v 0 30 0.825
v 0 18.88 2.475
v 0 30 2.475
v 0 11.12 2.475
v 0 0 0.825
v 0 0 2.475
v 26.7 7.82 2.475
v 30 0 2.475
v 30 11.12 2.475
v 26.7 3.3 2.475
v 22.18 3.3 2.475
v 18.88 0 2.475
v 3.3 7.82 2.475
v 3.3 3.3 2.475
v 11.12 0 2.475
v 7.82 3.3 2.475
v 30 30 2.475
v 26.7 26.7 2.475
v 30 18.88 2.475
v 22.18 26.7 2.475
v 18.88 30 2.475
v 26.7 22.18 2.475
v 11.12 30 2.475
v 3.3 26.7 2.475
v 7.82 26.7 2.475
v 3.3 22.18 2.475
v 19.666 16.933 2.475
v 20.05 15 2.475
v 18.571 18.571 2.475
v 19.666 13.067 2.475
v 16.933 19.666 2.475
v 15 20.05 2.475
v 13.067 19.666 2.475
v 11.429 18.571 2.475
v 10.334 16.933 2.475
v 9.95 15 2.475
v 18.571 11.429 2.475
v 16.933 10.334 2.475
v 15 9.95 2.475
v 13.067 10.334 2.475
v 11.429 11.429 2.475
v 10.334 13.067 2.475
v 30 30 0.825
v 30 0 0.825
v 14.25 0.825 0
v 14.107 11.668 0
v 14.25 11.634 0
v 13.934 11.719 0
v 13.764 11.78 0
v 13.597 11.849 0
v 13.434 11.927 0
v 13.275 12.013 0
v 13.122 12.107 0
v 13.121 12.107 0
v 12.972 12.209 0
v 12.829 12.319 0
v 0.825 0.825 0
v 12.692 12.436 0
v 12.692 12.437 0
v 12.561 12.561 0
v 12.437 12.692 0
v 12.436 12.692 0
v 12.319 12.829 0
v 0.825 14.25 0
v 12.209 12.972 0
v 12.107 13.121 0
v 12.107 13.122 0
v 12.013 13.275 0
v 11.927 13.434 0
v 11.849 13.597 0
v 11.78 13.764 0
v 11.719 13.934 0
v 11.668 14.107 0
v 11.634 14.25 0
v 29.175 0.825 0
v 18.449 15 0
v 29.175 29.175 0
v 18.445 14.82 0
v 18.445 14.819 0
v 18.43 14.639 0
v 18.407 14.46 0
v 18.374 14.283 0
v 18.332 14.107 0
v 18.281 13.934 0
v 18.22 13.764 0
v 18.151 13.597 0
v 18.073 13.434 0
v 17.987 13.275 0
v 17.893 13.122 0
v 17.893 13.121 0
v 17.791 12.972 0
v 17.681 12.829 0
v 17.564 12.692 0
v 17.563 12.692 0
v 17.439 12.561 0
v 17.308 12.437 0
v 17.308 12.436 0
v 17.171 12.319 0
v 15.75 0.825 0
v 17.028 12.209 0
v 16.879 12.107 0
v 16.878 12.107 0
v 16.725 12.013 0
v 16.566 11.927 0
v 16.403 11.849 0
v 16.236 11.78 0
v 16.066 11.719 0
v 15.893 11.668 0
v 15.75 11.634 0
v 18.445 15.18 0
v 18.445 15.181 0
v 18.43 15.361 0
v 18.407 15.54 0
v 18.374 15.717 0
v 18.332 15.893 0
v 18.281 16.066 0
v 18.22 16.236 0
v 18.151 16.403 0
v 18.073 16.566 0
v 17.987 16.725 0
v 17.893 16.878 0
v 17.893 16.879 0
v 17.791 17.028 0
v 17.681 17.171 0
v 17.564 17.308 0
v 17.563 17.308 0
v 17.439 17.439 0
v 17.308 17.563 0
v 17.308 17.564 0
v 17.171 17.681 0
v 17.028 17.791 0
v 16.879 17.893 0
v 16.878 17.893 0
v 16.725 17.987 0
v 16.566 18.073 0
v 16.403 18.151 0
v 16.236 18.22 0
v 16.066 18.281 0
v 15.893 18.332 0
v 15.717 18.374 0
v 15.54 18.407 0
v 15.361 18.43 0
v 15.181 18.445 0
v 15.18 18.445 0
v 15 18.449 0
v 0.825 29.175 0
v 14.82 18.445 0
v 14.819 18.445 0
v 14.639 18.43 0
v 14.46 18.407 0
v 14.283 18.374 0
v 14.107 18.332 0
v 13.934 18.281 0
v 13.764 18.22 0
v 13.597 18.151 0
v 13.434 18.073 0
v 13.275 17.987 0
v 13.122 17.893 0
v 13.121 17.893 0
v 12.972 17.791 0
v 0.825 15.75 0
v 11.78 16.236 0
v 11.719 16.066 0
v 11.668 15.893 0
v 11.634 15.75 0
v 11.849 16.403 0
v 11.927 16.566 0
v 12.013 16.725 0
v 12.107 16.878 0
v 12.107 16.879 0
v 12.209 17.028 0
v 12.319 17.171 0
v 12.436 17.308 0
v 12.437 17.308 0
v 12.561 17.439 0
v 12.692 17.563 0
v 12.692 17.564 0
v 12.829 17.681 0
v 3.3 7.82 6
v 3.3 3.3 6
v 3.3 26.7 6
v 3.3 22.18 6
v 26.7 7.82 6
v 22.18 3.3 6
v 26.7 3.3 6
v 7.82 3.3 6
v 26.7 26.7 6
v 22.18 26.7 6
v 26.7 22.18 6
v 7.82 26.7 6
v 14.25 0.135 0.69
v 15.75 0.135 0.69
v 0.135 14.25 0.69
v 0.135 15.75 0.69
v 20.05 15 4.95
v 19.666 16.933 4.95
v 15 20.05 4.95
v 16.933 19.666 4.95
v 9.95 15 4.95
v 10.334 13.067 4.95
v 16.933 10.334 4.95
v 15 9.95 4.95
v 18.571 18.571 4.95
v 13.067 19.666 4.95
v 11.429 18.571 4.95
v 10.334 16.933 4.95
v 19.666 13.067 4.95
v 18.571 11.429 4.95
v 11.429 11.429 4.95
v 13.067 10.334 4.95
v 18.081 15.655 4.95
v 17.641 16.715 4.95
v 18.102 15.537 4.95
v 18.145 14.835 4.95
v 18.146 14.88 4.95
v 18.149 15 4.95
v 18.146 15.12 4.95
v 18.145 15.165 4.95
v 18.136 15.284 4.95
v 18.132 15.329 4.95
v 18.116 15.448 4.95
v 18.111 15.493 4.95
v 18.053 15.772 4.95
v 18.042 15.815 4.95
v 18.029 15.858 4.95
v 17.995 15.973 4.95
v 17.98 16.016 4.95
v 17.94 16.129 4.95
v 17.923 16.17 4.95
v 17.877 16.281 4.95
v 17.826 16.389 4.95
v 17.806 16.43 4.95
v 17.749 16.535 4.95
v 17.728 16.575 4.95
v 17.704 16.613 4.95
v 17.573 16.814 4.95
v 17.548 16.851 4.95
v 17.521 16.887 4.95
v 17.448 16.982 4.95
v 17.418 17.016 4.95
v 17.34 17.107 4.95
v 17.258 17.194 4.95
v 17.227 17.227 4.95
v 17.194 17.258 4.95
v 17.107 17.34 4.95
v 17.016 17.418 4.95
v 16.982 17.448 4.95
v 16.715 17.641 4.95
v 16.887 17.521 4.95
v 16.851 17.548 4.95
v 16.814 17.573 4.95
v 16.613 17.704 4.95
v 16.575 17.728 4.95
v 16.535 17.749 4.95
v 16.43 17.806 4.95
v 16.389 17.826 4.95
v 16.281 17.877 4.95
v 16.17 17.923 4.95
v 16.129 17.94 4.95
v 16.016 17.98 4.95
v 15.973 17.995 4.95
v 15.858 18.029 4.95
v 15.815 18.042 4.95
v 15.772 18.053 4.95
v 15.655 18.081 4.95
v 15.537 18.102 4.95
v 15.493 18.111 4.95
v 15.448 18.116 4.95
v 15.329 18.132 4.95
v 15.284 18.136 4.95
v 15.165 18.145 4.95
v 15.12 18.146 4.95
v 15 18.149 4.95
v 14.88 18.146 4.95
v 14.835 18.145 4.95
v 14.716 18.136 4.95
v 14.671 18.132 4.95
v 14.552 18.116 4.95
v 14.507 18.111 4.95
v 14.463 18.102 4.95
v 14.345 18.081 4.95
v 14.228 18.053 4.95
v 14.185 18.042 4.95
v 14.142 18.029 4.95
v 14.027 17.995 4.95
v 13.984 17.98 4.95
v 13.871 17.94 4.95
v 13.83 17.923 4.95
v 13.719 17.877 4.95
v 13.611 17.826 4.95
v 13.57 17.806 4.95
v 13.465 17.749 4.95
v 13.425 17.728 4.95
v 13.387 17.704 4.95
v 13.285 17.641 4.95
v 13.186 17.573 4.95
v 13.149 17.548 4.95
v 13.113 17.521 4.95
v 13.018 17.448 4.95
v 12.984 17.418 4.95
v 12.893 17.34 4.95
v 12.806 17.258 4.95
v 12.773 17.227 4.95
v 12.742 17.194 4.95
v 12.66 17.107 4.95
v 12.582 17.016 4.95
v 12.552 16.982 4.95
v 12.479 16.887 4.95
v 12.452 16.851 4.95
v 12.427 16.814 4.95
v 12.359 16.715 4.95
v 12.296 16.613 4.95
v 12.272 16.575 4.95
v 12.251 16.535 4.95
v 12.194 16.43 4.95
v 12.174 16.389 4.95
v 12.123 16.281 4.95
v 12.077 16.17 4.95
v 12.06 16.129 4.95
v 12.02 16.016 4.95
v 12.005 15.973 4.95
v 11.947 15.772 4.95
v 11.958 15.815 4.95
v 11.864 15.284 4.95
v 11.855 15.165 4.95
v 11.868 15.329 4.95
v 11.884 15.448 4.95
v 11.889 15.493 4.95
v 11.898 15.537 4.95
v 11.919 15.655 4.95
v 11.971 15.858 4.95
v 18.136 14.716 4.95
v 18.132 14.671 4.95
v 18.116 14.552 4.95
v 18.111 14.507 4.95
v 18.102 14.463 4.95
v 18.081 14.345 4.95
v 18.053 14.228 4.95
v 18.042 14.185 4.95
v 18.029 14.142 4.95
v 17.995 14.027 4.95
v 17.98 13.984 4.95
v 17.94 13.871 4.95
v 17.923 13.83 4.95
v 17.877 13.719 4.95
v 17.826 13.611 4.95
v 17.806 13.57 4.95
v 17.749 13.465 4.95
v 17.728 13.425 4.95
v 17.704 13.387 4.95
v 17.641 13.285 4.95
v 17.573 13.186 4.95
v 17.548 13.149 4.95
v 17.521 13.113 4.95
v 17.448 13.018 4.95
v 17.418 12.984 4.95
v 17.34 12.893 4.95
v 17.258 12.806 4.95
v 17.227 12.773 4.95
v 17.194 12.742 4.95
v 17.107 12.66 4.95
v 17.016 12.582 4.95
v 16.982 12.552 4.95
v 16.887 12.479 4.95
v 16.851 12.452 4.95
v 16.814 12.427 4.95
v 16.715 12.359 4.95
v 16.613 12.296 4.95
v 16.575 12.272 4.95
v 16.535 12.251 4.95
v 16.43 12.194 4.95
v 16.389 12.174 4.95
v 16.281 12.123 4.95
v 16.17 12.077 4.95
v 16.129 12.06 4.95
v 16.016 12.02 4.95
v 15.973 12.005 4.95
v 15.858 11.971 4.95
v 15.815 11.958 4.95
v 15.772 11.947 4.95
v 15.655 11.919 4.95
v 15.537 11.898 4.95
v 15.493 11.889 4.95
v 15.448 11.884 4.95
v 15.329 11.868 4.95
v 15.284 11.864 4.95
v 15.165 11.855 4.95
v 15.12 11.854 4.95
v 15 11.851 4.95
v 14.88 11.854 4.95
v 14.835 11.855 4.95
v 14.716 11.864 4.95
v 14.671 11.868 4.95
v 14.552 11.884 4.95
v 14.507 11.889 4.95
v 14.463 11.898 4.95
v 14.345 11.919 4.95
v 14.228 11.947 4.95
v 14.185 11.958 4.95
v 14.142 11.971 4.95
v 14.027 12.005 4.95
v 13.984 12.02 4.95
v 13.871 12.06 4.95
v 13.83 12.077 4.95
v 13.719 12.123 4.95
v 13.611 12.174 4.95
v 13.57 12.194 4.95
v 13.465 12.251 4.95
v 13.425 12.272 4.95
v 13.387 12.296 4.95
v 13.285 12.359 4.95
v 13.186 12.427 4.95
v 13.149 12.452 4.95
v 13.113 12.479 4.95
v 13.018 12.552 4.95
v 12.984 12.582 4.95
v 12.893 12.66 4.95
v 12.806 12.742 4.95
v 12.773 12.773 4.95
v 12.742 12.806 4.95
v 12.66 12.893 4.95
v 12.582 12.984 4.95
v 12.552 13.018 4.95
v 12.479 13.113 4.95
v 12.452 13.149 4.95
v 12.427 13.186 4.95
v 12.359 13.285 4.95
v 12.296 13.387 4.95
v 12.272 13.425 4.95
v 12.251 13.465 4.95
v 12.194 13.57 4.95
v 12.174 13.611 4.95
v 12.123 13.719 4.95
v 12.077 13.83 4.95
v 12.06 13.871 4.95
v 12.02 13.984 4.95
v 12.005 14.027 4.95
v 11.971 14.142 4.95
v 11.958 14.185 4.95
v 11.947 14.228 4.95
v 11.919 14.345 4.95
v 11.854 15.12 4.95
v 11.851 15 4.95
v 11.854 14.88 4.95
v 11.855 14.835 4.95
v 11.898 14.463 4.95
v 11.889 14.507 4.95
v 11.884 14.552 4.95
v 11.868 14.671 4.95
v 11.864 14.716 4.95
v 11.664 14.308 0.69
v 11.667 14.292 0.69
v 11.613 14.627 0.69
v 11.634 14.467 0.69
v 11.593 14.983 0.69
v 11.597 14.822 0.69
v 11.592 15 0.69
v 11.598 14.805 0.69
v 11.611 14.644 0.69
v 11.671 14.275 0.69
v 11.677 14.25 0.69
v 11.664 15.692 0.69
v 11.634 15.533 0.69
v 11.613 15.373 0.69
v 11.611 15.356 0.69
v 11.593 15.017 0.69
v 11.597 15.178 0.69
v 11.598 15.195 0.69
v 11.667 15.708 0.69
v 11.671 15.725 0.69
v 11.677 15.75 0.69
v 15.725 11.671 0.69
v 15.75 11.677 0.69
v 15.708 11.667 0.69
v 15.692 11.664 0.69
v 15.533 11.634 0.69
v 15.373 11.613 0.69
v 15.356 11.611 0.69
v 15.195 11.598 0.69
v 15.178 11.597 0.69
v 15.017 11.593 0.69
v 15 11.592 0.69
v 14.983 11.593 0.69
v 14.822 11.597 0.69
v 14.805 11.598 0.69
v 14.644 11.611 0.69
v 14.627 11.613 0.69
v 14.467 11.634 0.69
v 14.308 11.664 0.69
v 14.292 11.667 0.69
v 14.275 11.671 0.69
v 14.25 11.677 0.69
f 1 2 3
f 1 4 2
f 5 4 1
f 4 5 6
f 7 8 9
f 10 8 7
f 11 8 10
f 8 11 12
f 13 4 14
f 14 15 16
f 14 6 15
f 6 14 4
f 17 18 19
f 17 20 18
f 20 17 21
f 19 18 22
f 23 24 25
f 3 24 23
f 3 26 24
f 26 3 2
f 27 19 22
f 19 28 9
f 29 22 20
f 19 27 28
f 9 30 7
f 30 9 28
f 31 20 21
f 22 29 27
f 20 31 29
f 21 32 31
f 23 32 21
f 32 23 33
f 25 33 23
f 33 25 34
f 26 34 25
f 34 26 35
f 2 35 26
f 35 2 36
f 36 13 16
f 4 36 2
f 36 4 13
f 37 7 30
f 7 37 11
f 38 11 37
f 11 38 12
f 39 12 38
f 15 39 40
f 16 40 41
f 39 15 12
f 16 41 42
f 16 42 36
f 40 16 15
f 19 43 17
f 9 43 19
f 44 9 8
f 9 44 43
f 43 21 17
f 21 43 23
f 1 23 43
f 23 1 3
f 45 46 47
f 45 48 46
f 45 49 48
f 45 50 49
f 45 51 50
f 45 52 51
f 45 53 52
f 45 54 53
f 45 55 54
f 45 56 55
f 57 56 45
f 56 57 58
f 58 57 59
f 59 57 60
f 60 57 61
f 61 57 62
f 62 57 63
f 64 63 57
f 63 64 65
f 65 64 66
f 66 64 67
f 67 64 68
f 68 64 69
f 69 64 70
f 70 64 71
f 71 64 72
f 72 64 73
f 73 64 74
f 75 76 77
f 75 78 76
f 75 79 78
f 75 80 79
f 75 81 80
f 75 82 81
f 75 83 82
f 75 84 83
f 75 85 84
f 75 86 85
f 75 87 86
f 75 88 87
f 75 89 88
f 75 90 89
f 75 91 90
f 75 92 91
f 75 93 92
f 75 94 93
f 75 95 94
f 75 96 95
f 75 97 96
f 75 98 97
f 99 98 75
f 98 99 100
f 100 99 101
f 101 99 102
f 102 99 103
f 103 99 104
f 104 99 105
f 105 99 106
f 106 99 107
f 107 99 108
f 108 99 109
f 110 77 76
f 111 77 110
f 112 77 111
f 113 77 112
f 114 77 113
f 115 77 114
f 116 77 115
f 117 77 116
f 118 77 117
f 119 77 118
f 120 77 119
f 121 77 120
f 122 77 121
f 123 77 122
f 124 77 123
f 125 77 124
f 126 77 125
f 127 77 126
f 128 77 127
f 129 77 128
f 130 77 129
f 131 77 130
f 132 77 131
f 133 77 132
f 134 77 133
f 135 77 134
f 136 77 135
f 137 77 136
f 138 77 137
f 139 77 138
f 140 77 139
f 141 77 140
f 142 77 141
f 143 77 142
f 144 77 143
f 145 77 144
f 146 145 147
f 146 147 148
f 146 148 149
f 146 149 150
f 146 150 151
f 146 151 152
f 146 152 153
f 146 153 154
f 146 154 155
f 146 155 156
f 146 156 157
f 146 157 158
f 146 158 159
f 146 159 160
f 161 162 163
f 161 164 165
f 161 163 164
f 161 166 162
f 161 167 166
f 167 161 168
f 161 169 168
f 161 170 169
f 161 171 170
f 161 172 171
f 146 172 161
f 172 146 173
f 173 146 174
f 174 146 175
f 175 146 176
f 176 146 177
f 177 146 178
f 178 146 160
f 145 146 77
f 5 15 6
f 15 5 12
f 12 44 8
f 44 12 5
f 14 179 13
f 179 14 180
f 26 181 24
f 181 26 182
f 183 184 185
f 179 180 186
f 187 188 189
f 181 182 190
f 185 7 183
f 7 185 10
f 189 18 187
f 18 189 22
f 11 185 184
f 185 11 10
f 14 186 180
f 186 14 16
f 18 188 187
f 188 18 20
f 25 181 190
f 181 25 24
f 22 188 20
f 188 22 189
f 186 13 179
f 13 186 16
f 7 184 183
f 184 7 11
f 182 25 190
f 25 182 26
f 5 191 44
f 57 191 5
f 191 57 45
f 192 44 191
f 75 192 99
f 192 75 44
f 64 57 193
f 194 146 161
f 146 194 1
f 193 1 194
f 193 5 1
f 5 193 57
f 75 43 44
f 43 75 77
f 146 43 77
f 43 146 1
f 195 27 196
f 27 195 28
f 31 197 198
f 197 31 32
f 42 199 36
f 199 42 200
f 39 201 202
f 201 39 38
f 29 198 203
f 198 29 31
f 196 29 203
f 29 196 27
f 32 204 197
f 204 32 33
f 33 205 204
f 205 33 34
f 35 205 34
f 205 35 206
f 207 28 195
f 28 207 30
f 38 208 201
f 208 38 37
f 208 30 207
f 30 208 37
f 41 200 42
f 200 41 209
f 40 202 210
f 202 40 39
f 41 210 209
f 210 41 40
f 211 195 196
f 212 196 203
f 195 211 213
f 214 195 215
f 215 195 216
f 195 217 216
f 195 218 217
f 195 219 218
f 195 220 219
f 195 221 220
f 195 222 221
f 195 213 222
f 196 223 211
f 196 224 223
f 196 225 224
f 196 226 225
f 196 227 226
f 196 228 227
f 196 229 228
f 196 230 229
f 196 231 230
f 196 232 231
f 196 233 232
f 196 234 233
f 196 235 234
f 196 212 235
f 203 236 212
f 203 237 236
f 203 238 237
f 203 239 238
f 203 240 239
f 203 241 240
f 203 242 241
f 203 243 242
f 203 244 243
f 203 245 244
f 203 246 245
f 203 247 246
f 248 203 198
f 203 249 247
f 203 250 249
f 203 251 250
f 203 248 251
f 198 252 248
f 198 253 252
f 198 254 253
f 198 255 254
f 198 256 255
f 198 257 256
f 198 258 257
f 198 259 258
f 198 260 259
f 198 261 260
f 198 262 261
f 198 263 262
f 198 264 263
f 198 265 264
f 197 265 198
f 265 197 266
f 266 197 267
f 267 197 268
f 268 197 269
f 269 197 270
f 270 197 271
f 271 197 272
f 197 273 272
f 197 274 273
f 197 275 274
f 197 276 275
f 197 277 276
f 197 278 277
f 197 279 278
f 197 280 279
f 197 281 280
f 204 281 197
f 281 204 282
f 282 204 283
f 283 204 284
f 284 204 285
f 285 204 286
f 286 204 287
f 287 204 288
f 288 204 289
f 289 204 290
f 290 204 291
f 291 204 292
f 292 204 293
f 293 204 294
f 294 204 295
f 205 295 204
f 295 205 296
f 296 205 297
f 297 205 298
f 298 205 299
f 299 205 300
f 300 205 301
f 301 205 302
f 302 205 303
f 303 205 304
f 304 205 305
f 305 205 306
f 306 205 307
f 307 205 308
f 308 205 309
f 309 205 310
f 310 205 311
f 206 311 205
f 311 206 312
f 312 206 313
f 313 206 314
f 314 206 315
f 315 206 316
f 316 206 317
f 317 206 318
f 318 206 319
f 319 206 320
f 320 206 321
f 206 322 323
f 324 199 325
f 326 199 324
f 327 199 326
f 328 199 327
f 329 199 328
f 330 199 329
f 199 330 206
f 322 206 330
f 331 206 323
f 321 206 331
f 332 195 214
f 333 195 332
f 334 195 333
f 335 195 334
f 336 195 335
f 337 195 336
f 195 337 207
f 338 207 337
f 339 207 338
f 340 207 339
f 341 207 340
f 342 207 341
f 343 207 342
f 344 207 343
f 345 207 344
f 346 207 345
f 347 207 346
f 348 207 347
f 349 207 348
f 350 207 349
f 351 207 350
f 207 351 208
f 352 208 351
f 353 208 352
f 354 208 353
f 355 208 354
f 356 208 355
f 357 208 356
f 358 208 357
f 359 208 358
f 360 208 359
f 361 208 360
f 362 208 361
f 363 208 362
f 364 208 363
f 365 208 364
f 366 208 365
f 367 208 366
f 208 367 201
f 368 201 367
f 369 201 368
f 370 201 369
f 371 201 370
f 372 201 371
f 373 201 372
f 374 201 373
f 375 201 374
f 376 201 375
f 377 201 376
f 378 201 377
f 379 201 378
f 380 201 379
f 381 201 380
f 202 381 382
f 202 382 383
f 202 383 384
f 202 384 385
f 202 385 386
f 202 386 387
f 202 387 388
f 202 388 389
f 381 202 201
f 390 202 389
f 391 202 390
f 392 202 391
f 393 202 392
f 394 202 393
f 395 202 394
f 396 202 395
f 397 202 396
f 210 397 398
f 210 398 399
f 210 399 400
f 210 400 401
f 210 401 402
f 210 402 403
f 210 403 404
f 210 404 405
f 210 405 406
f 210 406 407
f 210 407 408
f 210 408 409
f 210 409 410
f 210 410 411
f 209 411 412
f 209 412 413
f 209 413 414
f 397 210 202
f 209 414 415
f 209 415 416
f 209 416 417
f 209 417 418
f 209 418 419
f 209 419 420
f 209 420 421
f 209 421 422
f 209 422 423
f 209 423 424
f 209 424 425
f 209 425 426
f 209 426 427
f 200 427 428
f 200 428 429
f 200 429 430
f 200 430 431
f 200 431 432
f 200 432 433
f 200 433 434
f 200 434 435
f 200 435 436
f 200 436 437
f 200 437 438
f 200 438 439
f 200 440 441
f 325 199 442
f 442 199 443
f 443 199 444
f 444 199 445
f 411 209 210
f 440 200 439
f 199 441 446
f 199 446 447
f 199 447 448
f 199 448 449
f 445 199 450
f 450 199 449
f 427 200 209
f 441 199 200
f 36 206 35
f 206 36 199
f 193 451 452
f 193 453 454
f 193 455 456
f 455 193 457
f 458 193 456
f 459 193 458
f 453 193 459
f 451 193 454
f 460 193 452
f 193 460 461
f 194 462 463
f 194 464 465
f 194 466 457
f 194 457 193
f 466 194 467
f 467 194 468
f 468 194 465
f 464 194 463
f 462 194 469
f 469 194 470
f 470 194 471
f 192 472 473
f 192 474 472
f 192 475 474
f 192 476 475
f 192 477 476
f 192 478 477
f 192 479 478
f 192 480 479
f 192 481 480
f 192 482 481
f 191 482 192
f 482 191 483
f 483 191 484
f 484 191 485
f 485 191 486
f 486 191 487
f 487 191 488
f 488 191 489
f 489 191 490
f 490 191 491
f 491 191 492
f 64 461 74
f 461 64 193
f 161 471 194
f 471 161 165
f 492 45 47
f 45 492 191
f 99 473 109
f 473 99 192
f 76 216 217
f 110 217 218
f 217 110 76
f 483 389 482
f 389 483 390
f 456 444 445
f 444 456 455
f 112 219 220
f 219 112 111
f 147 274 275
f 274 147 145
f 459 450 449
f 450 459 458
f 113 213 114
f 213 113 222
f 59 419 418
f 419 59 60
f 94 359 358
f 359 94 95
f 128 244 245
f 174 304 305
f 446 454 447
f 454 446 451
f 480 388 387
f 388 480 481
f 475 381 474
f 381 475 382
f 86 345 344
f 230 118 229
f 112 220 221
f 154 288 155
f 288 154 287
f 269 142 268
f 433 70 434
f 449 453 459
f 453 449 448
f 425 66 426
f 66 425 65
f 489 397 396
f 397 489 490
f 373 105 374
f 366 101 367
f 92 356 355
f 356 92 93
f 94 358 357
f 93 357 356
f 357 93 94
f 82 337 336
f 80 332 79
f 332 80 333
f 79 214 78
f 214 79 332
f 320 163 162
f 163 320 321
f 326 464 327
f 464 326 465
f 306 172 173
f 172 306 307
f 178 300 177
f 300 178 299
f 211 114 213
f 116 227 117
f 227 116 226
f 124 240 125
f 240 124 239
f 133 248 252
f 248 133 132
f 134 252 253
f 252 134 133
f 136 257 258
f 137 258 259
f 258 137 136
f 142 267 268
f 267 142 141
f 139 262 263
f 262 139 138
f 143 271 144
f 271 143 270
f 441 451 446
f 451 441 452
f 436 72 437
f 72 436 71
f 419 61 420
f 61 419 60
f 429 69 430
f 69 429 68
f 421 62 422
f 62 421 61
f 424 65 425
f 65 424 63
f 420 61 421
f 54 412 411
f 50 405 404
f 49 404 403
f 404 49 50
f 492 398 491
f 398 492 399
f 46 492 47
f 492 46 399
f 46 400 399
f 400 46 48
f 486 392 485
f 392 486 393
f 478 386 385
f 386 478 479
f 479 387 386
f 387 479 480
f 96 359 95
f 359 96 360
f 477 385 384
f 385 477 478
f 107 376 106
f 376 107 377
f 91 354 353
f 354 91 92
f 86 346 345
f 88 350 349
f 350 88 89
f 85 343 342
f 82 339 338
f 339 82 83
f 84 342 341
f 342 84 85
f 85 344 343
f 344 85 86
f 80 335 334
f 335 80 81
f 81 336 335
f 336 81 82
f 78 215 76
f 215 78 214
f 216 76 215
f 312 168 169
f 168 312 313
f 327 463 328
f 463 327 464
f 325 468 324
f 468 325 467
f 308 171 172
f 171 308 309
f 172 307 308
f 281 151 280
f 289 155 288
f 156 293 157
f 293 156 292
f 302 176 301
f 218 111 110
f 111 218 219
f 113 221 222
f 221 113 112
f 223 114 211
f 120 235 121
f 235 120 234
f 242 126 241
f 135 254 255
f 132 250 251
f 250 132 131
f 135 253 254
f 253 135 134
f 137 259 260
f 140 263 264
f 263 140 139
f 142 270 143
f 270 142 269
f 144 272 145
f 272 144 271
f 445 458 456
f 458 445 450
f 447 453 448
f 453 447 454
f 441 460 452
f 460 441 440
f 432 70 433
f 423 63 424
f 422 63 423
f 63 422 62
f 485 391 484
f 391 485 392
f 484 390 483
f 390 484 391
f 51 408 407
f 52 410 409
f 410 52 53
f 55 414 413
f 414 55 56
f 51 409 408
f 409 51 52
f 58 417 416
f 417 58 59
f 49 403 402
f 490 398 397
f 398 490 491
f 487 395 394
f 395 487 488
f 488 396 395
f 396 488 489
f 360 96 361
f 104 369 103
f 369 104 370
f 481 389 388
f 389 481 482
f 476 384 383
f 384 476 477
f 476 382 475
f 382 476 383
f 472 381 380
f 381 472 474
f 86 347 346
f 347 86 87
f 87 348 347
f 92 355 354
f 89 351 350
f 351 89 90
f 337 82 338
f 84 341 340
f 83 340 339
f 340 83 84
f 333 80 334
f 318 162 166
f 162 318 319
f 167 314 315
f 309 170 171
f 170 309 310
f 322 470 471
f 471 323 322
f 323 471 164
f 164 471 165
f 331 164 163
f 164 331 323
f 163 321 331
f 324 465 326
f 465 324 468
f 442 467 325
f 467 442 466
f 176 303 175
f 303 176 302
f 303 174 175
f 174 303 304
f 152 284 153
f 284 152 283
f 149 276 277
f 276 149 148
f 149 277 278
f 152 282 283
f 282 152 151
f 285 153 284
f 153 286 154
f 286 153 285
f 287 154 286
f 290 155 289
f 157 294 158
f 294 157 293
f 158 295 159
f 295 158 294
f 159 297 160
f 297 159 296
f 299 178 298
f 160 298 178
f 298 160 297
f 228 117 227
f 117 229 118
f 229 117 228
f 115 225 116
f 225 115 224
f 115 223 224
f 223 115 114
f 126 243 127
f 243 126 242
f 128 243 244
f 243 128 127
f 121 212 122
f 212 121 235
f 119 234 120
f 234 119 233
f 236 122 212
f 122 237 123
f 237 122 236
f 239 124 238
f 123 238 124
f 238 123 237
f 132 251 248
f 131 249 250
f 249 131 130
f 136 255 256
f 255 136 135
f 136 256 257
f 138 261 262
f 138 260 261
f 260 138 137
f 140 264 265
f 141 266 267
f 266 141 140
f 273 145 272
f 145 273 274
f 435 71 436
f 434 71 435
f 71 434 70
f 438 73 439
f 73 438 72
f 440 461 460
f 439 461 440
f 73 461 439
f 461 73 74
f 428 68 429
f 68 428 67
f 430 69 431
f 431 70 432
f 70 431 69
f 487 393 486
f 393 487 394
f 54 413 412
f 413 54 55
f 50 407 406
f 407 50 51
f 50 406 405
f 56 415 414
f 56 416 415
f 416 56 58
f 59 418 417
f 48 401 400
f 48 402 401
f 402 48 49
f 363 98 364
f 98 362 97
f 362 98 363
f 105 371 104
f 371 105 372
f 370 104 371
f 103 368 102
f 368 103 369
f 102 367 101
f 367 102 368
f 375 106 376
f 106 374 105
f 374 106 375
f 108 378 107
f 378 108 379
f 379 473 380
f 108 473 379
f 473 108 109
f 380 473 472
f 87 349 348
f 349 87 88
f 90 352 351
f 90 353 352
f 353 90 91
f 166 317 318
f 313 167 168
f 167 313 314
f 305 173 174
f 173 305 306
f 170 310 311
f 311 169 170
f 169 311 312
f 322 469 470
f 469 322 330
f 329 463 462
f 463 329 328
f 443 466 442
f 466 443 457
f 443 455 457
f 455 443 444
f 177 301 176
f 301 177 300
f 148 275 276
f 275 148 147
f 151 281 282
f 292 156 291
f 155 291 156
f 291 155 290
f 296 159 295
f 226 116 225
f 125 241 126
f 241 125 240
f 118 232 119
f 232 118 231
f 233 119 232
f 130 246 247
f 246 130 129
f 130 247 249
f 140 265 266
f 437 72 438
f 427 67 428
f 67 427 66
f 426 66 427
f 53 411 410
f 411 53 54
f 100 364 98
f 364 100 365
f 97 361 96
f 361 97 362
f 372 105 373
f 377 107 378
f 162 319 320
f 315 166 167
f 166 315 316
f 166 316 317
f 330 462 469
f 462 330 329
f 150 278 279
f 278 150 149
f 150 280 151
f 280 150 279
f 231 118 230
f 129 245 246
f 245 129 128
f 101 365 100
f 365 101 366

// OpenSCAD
// file: settings.scad
cube_width=30;
cube_height=16;
cube_thickness=3.3;

cap_width=30;
cap_height=6;
cap_thickness=3.3;

glyph_depth=0.7;
glyph_thickness=1.5;

photo_resitor_hole_r = 3.1;
spring_contact_hole_r = 3.35;
// file: cap_1x1.scad
include <settings.scad>

module cap_1x1(width, height, thickness, holes_mask)
{
    width1=width-thickness;
    difference()
    {
        union()
        {
            cube([width, width, thickness*3/4]);
            translate([thickness,thickness,0])cube([width-2*thickness, width-2*thickness, height]);
        }
        union()
        {
            translate([width/2,width/2,0])rotate([0,0,45])translate([-width1/2,-width1/2,thickness*3/4]) cube([width1,width1,height]);
                        //corners
            translate([0,0.25*thickness,0])rotate([45,0,0]) translate([-0.5*width, -width, -0.5*height]) cube([2*width, width, 2*height]);
            translate([0.25*thickness,0,0]) rotate([0,-45,0]) translate([-width, -0.5*width, -0.5*height]) cube([width, 2*width, 2*height]);
            translate([width-0.25*thickness,0,0]) rotate([0,45,0]) translate([0, 0, -0.5*height]) cube([width, 2*width, 2*height]);
            translate([0,width-0.25*thickness,0]) rotate([-45,0,0]) translate([-0.5*width, 0, -0.5*height]) cube([2*width, width, 2*height]);
            
            if (holes_mask >= 8)
            {
                translate([width/2, thickness-1.5, -0.5]) cylinder(r=1.15, h=height*1.5, $fn=80);
            }
            if ((holes_mask%8) >= 4)
            {
                translate([width/2, width-thickness+1.5, -0.5]) cylinder(r=1.15, h=height*1.5, $fn=80);
            }
            if ((holes_mask%4)>= 2)
            {
                translate([thickness-1.5, width/2, -0.5]) cylinder(r=1.15, h=height*1.5, $fn=80);
            }
            if (holes_mask%2 >= 1)
            {
                translate([width-thickness+1.5, width/2, -0.5]) cylinder(r=1.15, h=height*1.5, $fn=80);
            }
        }
    }
}

cap_1x1(cap_width, cap_height, cap_thickness, 9);
//ring(10,1,1);
//arrow(1, 20, 3, 1);
//transistor_npn(30, 1, 1);
// main file
use <cap_1x1.scad>
include <settings.scad>

module cap_1x1_wireVo(width, height, thickness)
{
    cr1 = spring_contact_hole_r+0.1;
    cr2 = spring_contact_hole_r-0.3;
    difference()
    {
        union()
        {
            cap_1x1(width, height, thickness, 0);
            translate([width/2,width/2,0]) cylinder(r=(cr2+2), h=thickness*1.5);
        }	
        translate([0,(width-glyph_thickness)/2,-0.01]) cube([width/2, glyph_thickness, glyph_depth]);
        translate([(width-glyph_thickness)/2, 0, -0.01]) cube([glyph_thickness, width/2, glyph_depth]);
        translate([width/2,width/2,-0.01])cylinder(r1=cr1, r2=cr2, h=2*thickness, $fn=120);
    }
}

cap_1x1_wireVo(cap_width, cap_height, cap_thickness);
